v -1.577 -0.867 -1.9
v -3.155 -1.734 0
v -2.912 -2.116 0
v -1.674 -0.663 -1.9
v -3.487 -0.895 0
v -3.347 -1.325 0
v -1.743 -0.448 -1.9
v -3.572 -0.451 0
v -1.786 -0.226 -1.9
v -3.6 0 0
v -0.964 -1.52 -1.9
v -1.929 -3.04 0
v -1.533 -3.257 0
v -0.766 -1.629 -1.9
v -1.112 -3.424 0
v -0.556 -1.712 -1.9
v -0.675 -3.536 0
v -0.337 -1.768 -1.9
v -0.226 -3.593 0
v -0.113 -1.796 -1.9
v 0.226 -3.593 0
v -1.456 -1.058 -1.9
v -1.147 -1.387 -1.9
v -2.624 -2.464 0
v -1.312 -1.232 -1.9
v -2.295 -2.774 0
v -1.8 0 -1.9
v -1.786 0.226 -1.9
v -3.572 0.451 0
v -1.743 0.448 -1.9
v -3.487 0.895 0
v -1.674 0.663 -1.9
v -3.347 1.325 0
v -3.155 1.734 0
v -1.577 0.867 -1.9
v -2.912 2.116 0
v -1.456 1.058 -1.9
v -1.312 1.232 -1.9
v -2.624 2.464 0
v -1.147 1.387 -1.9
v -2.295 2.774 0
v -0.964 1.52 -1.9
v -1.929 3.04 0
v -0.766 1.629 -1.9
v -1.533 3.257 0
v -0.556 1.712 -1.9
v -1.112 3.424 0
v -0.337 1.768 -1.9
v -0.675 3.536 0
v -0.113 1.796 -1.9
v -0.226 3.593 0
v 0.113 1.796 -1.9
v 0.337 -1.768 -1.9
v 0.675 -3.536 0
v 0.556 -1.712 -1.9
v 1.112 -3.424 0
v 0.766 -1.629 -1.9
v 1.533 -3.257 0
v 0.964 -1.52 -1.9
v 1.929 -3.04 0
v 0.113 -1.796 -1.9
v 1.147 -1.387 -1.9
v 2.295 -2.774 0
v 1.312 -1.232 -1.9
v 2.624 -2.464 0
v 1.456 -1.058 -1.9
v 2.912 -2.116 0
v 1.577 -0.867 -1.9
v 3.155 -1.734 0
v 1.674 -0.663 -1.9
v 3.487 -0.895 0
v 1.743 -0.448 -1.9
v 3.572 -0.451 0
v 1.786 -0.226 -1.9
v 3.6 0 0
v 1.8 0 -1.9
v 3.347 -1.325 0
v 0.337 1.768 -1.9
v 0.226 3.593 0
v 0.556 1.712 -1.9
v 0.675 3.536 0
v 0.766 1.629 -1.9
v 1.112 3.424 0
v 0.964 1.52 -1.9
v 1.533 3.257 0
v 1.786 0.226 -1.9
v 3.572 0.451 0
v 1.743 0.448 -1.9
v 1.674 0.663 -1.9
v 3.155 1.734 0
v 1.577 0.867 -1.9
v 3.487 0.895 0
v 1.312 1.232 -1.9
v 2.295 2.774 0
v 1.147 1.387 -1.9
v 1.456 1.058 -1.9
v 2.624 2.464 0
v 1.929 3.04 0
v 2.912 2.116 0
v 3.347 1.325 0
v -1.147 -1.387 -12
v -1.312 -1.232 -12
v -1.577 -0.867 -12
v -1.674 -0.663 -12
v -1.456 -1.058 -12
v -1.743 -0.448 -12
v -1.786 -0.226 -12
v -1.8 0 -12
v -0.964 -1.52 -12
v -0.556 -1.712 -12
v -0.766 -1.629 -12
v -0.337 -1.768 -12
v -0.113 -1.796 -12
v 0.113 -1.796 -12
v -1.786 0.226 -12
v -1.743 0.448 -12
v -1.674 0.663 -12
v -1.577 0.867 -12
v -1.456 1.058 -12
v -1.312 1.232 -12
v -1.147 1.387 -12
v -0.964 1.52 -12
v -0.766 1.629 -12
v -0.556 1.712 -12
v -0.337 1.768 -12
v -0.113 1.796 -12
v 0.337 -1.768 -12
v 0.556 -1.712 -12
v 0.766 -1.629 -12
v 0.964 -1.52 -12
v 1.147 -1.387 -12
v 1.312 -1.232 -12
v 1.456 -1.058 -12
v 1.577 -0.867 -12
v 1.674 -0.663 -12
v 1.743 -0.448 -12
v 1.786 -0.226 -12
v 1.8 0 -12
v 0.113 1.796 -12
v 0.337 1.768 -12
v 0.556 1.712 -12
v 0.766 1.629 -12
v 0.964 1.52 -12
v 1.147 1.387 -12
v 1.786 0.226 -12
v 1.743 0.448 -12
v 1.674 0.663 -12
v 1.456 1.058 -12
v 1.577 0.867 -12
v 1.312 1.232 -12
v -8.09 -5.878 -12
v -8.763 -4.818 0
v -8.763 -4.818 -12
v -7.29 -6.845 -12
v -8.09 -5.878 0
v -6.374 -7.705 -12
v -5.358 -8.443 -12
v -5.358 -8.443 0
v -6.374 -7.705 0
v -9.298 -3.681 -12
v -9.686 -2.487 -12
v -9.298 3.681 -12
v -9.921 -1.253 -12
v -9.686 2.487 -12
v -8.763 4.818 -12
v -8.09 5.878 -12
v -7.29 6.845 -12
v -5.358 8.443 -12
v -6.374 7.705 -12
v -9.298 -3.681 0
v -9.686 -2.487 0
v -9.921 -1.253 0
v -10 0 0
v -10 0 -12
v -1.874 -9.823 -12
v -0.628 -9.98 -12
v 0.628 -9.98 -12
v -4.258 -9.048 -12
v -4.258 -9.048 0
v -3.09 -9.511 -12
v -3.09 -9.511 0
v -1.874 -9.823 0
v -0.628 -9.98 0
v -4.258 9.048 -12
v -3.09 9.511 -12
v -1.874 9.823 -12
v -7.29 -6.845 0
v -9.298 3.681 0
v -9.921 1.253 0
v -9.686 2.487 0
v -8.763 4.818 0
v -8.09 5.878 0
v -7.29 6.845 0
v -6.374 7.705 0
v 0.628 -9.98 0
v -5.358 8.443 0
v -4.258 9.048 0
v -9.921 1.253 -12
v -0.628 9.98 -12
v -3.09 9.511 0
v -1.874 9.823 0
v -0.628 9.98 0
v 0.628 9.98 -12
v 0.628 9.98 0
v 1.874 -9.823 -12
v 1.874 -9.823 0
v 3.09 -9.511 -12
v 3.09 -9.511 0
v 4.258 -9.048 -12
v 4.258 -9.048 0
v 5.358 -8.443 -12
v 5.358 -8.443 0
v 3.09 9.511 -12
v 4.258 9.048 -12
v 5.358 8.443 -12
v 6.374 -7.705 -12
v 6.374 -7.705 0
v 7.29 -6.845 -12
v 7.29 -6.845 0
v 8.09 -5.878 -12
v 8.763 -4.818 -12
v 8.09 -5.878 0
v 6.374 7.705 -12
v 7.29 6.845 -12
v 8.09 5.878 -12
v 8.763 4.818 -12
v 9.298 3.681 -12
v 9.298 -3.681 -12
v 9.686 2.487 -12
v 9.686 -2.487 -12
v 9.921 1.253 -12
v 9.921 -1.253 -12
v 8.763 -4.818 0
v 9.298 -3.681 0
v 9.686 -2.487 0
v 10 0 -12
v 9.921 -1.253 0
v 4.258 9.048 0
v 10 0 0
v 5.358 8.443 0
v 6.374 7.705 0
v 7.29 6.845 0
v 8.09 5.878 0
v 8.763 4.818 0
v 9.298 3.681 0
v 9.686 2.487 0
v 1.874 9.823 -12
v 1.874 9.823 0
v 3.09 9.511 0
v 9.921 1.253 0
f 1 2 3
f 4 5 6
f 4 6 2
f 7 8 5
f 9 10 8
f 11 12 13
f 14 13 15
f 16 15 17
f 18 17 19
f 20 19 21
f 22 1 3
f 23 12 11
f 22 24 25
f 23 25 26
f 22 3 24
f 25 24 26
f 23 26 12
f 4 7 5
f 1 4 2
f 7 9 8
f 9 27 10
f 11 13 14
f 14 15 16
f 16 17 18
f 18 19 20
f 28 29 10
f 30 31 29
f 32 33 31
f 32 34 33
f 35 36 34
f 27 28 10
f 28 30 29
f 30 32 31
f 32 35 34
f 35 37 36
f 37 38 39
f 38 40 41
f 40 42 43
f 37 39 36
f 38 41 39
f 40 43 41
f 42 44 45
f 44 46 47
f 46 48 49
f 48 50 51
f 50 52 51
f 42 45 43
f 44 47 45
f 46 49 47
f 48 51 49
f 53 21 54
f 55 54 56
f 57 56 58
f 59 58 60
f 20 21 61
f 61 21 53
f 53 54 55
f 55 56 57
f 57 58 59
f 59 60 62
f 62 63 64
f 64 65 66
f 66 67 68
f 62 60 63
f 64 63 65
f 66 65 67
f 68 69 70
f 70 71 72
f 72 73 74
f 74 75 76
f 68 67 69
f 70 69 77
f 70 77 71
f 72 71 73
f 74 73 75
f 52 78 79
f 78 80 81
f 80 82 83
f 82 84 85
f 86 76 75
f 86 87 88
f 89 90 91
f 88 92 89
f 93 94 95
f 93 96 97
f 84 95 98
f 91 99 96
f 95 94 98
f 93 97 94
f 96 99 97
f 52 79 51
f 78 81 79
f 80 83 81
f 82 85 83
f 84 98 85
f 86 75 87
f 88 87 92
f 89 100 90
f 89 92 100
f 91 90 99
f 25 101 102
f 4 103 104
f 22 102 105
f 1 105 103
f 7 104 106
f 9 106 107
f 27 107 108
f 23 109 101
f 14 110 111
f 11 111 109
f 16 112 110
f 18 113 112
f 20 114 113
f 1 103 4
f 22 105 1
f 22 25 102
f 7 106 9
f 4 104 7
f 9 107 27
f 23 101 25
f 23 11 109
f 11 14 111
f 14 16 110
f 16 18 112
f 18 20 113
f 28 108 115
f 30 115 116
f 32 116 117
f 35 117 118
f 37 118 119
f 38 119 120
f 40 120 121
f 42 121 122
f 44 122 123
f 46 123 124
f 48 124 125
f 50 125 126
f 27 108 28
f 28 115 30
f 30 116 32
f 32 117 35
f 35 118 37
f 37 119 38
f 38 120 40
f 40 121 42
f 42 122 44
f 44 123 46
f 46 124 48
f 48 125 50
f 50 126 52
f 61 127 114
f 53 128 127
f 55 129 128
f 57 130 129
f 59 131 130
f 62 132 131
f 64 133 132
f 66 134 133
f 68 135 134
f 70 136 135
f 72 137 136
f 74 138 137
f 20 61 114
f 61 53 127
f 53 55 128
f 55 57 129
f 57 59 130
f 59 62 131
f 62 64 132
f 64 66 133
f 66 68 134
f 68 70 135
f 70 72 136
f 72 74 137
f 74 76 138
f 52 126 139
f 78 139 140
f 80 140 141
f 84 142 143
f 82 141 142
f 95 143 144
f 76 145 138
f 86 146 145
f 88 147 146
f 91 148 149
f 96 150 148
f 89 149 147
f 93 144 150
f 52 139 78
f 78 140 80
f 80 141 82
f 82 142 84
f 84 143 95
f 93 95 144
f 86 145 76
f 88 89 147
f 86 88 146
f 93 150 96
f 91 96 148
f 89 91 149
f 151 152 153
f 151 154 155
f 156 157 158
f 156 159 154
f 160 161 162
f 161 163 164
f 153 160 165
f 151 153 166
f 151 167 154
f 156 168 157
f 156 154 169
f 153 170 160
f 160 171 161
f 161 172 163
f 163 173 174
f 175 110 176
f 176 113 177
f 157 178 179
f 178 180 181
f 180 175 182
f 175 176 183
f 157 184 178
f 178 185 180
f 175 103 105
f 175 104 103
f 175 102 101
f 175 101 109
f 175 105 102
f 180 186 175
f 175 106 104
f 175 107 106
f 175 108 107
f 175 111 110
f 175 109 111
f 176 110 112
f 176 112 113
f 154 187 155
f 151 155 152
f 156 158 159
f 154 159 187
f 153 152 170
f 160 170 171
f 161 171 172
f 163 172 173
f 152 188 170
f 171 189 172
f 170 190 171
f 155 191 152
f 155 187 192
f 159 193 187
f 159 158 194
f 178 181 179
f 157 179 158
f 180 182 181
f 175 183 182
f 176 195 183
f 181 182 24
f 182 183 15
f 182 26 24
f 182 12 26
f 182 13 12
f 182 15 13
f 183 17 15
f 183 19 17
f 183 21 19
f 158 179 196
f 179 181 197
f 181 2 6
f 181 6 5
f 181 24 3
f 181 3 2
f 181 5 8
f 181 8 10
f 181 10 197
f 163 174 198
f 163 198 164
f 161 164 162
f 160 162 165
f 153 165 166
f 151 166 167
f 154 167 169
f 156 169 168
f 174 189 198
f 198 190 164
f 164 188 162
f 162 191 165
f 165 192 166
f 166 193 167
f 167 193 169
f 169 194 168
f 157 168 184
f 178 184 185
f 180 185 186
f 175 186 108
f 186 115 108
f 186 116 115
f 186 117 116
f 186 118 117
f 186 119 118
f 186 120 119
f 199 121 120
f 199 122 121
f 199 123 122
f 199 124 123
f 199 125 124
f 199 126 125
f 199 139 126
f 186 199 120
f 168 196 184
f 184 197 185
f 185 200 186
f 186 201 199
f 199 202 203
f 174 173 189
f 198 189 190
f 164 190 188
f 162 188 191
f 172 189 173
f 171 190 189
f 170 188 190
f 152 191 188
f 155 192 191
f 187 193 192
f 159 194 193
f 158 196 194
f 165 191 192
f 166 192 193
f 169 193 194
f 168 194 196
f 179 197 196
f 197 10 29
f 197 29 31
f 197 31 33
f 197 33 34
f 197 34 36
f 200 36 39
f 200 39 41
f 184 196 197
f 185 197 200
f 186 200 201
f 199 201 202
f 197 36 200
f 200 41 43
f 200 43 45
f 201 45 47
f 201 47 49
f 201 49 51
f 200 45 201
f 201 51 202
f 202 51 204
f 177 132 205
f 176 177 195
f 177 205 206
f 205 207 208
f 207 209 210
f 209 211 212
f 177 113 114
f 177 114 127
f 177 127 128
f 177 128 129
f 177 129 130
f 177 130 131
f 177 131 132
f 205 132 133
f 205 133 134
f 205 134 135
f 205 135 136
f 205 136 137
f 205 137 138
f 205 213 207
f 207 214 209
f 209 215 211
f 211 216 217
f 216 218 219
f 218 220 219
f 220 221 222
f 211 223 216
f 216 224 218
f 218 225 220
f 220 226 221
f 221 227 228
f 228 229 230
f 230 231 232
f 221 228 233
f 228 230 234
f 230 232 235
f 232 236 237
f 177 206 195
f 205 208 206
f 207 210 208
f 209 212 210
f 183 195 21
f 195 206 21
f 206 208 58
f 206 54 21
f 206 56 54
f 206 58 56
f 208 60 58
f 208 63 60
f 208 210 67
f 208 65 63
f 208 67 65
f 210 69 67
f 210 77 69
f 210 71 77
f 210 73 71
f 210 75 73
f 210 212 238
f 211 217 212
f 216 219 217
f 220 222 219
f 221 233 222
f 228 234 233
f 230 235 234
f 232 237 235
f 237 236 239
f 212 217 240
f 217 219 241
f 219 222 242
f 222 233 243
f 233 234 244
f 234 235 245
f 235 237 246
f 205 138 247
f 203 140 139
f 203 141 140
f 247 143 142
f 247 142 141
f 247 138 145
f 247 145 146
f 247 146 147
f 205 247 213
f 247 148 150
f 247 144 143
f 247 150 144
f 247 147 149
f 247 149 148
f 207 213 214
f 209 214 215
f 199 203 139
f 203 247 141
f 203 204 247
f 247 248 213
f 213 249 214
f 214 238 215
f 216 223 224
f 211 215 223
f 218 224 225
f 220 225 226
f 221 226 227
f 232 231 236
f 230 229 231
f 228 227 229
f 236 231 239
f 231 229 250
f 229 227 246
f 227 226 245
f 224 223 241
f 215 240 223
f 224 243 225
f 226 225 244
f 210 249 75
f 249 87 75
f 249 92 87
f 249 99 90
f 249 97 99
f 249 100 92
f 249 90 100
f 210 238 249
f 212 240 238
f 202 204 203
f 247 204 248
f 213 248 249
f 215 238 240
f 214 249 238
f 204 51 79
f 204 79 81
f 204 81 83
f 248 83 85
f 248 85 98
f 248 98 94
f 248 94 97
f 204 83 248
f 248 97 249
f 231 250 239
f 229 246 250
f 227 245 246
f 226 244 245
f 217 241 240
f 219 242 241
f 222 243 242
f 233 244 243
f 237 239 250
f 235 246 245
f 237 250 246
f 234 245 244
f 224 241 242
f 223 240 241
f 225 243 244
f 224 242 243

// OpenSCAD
$fn = 50;

difference() {
	union() {
		translate(v = [0, 0, -12.0]) {
			cylinder(h = 12, r = 10.0);
		}
	}
	union() {
		translate(v = [0, 0, 0]) {
			rotate(a = [0, 0, 0]) {
				difference() {
					union() {
						translate(v = [0, 0, -15.0]) {
							cylinder(h = 15, r = 1.5);
						}
						translate(v = [0, 0, -1.9]) {
							cylinder(h = 1.9, r1 = 1.8, r2 = 3.6);
						}
						translate(v = [0, 0, -15.0]) {
							cylinder(h = 15, r = 1.8);
						}
						translate(v = [0, 0, -15.0]) {
							cylinder(h = 15, r = 1.5);
						}
					}
					union();
				}
			}
		}
	}
}
